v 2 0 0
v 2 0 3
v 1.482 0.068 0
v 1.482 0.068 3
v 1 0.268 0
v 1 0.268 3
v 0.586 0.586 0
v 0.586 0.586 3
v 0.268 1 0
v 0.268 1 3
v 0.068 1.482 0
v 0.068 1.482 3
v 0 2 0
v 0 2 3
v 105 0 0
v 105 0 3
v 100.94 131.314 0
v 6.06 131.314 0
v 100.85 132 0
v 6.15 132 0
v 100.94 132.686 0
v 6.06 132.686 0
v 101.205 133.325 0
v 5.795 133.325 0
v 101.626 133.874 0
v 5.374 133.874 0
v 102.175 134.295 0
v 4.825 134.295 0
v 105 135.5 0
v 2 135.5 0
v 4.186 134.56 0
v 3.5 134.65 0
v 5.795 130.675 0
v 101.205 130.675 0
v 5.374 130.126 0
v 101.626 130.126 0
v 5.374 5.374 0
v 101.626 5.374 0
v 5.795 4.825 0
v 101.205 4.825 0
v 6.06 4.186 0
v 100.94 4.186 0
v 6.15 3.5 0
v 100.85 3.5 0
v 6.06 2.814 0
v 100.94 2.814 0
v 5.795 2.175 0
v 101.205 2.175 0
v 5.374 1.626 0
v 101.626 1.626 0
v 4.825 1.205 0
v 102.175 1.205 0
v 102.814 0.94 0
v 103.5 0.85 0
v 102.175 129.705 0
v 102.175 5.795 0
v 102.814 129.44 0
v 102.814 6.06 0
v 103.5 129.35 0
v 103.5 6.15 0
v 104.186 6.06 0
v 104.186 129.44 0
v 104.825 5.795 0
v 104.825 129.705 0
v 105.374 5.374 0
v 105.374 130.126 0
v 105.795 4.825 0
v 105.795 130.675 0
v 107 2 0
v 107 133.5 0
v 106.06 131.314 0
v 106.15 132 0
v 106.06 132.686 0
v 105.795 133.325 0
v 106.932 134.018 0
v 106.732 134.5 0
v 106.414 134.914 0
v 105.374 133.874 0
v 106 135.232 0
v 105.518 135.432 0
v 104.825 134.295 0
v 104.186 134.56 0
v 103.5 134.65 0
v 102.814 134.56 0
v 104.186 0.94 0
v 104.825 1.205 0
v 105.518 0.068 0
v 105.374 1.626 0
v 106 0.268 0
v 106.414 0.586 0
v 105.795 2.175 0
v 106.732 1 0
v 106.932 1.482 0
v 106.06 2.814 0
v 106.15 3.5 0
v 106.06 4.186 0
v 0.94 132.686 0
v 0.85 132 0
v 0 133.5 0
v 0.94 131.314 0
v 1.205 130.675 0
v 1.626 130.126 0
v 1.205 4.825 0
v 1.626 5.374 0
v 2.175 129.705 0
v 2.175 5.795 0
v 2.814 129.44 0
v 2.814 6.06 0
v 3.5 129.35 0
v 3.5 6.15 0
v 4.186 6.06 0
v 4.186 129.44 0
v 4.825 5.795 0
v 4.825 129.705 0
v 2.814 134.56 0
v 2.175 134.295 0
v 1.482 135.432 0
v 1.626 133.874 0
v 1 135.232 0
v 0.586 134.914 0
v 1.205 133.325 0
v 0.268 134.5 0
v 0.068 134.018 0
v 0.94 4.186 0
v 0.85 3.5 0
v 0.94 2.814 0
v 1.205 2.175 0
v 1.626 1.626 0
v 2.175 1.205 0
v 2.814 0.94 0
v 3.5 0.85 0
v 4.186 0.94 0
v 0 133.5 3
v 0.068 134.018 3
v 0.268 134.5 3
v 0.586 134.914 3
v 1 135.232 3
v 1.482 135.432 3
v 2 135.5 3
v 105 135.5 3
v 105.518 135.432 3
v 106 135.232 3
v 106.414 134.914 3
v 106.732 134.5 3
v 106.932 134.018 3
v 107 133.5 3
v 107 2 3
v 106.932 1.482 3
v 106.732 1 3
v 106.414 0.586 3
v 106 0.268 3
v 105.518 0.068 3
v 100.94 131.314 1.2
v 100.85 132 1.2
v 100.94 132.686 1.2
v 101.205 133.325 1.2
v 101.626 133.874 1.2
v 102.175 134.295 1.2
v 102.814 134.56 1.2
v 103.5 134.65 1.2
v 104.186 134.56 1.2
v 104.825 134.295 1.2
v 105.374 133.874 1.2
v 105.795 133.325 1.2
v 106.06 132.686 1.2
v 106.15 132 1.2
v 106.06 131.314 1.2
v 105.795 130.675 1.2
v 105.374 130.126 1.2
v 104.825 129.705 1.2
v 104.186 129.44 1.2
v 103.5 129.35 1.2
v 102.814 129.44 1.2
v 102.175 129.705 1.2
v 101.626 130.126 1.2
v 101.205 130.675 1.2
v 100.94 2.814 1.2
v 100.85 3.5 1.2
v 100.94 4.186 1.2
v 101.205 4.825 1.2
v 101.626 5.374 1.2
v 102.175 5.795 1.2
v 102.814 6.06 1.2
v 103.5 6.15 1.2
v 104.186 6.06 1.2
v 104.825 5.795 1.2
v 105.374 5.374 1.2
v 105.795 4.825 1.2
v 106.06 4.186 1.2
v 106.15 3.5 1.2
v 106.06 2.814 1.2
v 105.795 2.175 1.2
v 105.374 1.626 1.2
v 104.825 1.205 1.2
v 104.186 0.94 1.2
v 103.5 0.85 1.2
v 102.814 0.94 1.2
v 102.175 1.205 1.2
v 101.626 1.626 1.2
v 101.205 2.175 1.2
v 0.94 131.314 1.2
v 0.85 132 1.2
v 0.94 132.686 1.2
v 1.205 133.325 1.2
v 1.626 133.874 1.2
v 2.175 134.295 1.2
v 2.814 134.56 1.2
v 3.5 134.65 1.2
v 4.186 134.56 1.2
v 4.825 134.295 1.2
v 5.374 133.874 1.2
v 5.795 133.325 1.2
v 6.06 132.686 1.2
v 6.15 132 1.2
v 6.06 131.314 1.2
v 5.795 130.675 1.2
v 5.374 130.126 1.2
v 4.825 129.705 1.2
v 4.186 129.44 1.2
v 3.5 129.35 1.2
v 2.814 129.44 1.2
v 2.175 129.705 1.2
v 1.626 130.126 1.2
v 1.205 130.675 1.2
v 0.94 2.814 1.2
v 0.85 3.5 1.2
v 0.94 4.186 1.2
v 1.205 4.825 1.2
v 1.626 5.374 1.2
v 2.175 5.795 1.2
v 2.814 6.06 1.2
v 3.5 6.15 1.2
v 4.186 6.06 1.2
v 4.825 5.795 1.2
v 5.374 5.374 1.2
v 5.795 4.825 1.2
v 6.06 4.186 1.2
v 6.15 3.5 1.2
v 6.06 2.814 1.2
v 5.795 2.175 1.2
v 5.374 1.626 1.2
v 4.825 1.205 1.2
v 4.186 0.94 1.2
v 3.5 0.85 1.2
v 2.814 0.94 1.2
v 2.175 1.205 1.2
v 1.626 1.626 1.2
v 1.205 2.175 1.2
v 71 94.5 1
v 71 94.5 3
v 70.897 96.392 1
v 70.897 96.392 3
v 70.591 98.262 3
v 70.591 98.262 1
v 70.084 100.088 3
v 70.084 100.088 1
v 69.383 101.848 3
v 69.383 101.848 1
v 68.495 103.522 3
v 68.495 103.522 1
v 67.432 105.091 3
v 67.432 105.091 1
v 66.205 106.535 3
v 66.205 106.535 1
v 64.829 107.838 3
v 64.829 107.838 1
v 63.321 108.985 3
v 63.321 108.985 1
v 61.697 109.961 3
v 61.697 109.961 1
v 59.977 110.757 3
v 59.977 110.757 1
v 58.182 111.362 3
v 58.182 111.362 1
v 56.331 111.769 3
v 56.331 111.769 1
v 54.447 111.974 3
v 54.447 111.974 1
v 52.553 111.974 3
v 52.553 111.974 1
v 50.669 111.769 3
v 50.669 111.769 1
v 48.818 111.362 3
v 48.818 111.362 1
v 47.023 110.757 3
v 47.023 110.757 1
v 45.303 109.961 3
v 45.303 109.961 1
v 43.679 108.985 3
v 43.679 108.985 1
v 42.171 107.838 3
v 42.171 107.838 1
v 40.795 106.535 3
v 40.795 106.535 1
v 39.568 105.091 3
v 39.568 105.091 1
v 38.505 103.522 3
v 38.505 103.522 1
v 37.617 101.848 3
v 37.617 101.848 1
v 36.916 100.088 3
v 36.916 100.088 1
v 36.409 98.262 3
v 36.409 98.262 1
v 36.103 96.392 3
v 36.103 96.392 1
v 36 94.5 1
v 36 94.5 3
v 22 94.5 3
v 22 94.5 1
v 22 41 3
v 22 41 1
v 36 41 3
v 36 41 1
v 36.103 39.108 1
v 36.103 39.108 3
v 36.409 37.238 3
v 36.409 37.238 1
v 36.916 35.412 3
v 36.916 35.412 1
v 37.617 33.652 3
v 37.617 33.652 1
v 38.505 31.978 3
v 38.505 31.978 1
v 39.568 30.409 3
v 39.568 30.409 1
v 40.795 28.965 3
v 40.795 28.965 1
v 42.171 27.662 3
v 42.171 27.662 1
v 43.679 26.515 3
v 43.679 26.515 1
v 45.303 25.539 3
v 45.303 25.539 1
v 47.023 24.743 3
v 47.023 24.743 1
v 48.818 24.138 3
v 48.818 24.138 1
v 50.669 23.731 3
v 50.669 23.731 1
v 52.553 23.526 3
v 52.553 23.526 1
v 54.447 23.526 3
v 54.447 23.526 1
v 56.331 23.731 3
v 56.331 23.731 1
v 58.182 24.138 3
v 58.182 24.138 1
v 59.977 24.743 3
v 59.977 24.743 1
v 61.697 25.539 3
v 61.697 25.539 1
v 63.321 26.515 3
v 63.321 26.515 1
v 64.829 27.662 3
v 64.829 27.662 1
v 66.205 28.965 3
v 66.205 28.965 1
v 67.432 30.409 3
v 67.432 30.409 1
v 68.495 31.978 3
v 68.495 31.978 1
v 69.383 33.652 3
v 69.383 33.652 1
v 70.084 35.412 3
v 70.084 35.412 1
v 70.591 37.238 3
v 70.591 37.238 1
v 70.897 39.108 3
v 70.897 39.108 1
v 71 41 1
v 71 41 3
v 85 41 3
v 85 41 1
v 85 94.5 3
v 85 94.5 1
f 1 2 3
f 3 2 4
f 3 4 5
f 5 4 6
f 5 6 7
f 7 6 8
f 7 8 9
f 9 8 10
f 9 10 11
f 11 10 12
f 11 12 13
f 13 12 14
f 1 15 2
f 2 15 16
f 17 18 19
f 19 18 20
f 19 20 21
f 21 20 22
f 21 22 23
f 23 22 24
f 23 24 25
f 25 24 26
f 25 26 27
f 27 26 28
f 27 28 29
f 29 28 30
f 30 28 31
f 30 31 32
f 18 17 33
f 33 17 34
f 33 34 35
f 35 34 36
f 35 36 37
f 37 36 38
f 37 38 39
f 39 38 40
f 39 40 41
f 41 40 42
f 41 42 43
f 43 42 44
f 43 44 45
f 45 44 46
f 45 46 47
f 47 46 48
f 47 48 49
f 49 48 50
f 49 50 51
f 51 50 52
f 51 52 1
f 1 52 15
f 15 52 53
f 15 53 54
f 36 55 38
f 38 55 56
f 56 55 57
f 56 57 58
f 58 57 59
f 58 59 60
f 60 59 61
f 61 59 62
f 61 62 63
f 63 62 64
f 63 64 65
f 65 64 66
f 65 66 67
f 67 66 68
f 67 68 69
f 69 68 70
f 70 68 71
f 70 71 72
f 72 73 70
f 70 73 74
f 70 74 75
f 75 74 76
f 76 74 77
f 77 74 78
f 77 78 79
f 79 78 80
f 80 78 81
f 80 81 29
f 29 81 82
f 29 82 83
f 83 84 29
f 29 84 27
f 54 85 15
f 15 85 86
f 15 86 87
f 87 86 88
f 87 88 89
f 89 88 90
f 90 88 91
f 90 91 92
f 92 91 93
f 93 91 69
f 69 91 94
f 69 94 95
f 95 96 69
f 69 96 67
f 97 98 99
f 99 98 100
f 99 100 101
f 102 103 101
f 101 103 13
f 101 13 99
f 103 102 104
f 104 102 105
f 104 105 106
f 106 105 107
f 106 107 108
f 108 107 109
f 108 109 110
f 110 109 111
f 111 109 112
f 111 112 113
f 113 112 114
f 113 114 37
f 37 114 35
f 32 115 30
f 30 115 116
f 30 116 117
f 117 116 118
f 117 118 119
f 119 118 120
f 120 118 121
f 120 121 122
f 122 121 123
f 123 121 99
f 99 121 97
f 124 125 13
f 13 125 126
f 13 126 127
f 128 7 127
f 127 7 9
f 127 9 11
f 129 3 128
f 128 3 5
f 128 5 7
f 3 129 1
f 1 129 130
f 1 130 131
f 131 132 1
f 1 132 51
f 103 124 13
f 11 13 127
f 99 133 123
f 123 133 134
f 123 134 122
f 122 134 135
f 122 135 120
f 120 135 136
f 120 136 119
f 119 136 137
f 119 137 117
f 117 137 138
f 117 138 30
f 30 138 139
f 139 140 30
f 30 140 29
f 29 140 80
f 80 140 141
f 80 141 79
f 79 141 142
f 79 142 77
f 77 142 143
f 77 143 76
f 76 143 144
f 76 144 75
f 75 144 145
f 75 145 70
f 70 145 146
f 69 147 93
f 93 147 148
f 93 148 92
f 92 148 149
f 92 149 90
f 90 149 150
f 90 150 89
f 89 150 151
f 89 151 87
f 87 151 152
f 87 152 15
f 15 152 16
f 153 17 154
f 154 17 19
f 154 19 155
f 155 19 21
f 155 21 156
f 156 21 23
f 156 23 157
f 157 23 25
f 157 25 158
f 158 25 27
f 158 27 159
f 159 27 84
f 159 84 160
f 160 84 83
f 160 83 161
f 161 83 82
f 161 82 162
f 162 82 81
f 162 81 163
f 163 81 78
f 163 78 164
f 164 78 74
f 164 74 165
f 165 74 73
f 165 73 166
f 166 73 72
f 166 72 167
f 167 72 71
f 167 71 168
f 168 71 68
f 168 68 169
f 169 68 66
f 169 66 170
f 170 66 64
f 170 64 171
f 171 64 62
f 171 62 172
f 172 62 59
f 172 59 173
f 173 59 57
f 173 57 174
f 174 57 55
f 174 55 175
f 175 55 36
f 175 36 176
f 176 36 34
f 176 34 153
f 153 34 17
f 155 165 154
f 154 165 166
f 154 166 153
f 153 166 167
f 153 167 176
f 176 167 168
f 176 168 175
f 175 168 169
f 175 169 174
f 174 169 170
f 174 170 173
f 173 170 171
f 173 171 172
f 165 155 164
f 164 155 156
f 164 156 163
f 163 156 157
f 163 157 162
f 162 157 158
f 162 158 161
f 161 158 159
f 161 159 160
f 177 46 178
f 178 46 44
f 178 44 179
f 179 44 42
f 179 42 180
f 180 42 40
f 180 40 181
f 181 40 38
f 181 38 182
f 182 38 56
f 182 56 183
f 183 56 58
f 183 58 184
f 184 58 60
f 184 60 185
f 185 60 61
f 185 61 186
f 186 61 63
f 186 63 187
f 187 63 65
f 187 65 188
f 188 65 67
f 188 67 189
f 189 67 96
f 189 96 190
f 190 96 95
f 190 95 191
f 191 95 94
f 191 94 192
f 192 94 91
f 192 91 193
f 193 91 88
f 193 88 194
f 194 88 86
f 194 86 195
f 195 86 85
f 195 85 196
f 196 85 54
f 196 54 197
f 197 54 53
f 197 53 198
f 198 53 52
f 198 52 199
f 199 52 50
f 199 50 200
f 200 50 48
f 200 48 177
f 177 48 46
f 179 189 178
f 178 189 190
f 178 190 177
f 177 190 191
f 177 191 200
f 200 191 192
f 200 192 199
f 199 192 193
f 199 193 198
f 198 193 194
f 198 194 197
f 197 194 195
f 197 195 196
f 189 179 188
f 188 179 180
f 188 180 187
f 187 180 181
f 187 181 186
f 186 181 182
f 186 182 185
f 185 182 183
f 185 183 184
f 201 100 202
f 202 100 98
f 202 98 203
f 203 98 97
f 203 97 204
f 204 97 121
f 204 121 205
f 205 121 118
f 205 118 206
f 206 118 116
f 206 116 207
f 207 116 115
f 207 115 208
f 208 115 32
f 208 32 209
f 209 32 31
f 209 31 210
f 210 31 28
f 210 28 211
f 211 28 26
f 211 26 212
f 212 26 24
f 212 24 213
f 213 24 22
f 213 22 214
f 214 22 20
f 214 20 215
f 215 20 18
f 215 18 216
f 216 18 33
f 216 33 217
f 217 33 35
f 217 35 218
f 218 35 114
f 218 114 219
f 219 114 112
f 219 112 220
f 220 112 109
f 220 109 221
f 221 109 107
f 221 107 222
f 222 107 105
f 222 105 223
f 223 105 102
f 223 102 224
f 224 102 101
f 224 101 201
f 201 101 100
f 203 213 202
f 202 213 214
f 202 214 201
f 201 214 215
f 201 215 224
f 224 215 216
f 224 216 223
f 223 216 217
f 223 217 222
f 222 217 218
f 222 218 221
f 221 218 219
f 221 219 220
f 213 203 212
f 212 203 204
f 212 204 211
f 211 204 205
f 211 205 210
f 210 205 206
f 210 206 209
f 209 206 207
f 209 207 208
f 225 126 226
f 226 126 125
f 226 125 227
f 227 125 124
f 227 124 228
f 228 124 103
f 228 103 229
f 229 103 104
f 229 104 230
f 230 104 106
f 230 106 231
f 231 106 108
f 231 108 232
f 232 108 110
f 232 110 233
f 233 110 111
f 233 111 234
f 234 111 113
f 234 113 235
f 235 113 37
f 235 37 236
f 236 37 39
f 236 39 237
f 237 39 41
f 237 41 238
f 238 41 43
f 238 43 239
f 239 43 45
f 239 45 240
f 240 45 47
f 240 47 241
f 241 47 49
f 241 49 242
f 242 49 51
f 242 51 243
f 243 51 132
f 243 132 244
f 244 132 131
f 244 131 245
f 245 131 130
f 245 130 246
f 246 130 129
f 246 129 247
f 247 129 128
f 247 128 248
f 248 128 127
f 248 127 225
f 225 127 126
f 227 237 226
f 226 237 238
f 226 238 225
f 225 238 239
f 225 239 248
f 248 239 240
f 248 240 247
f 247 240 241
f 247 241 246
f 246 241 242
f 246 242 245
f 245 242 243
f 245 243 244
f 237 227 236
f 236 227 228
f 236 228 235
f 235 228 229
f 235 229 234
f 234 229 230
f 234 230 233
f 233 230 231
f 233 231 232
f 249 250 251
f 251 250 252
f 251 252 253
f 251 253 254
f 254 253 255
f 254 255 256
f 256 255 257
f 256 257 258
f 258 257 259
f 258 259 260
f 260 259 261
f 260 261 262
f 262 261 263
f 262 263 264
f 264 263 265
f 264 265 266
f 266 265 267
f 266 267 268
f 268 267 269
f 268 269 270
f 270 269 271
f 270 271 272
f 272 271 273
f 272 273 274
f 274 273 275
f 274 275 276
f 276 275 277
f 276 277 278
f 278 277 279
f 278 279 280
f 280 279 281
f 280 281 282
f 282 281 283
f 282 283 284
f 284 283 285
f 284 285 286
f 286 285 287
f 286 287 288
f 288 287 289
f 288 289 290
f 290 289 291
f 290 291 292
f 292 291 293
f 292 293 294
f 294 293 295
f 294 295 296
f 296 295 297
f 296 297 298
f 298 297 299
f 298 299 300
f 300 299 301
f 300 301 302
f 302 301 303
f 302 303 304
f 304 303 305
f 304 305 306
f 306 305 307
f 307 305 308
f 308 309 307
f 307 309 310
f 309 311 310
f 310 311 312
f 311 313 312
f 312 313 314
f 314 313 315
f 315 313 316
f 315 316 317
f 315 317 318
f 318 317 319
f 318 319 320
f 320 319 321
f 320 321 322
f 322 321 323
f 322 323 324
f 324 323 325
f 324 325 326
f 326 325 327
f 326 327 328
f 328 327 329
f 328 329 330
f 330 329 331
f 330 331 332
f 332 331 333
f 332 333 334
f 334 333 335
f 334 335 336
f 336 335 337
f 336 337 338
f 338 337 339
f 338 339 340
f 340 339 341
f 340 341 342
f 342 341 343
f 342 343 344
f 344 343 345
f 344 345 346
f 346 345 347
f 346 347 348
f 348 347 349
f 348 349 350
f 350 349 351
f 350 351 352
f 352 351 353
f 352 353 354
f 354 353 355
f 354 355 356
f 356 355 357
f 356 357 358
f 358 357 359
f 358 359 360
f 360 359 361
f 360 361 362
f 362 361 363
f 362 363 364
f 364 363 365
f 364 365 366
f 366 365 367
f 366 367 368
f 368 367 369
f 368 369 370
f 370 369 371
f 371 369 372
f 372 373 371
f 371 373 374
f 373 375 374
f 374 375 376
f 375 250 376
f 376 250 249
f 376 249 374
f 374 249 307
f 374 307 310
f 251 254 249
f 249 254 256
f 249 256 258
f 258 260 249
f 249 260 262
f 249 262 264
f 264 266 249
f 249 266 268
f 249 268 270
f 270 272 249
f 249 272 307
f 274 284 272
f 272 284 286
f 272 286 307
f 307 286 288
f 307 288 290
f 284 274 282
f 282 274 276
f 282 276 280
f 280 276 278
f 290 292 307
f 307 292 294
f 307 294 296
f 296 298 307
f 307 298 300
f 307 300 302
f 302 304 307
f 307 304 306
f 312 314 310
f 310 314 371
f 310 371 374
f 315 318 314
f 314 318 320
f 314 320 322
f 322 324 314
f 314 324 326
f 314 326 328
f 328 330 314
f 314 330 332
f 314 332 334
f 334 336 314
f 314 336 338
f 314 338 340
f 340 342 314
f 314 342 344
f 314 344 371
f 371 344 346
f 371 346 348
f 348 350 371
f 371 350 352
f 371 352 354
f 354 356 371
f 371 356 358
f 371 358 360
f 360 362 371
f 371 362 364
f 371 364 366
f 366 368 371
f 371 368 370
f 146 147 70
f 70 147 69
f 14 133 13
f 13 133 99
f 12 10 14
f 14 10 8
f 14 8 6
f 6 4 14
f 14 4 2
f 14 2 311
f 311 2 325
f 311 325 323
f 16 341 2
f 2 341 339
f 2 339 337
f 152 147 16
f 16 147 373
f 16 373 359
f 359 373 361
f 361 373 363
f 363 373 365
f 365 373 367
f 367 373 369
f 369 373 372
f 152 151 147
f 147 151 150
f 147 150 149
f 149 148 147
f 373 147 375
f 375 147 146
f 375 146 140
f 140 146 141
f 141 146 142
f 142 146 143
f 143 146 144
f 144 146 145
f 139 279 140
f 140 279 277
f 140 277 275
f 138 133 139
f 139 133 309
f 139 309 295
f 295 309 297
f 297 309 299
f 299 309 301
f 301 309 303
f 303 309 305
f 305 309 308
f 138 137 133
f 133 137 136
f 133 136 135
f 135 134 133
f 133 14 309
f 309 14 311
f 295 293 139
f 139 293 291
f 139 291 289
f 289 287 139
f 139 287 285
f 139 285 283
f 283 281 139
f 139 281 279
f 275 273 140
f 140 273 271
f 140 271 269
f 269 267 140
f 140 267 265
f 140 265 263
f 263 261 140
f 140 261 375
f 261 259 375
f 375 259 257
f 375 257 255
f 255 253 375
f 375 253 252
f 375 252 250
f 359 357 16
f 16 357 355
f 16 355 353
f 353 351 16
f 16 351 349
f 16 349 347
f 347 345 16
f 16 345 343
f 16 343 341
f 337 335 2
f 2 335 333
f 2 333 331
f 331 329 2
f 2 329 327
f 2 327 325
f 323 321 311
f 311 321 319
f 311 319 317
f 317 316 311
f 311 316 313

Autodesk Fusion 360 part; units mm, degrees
sketch "Skizze1" plane through (0, 0, 0) normal (0, 0, 1) x (1, 0, 0)
  line L0 (0, 0) -> (107, 0)
  line L1 (107, 0) -> (107, 135.5)
  line L2 (107, 135.5) -> (0, 135.5)
  line L3 (0, 135.5) -> (0, 0)
  dimension "d1" = 107
  dimension "d2" = 135.5
extrude "Extrusion1" add sketch "Skizze1" along normal blind 3
sketch "Skizze2" plane through (0, 0, 3) normal (0, 0, 1) x (-1, 0, 0)
  line L0 (0, -135.5) -> (0, 0)
  line L1 (0, 0) -> (-107, 0)
  line L2 (-107, 0) -> (-107, -135.5)
  line L3 (-107, -135.5) -> (0, -135.5)
  line L4 (-22, -41) -> (-85, -41)
  line L5 (-85, -41) -> (-85, -94.5)
  line L6 (-85, -94.5) -> (-22, -94.5)
  line L7 (-22, -94.5) -> (-22, -41)
  circle A0 centre (-53.5, -41) radius 17.5
  circle A1 centre (-53.5, -94.5) radius 17.5
  dimension "d5" = 63
  dimension "d6" = 53.5
  dimension "d7" = 41
  dimension "d8" = 22
  dimension "d9" = 35
  dimension "d10" = 35
extrude "Extrusion2" cut sketch "Skizze2" against normal blind 2 contours L4 L5 L6 L7 A0 A1 | L4 A0 | L4 A0 | L6 A1 | L6 A1
sketch "Skizze3" plane through (0, 0, 0) normal (0, 0, -1) x (1, 0, 0)
  line L0 (0, 0) -> (0, -135.5)
  line L1 (0, -135.5) -> (107, -135.5)
  line L2 (107, -135.5) -> (107, 0)
  line L3 (107, 0) -> (0, 0)
  line L4 (0, 0) -> (7, 0)
  line L5 (7, 0) -> (7, -7)
  line L6 (7, -7) -> (0, -7)
  line L7 (0, -7) -> (0, 0)
  line L8 (107, 0) -> (100, 0)
  line L9 (100, 0) -> (100, -7)
  line L10 (100, -7) -> (107, -7)
  line L11 (107, -7) -> (107, 0)
  line L12 (0, -135.5) -> (7, -135.5)
  line L13 (7, -135.5) -> (7, -128.5)
  line L14 (7, -128.5) -> (0, -128.5)
  line L15 (0, -128.5) -> (0, -135.5)
  line L16 (107, -135.5) -> (100, -135.5)
  line L17 (100, -135.5) -> (100, -128.5)
  line L18 (100, -128.5) -> (107, -128.5)
  line L19 (107, -128.5) -> (107, -135.5)
  circle A0 centre (3.5, -132) radius 2.65
  circle A1 centre (103.5, -132) radius 2.65
  circle A2 centre (103.5, -3.5) radius 2.65
  circle A3 centre (3.5, -3.5) radius 2.65
  dimension "d13" = 7
  dimension "d14" = 7
  dimension "d15" = 7
  dimension "d16" = 7
  dimension "d17" = 7
  dimension "d18" = 7
  dimension "d19" = 7
  dimension "d20" = 7
  dimension "d21" = 5.3
  dimension "d22" = 5.3
  dimension "d23" = 5.3
  dimension "d24" = 5.3
  dimension "d25" = 3.5
  dimension "d26" = 3.5
  dimension "d27" = 3.5
  dimension "d28" = 3.5
  dimension "d29" = 3.5
  dimension "d30" = 3.5
  dimension "d31" = 3.5
  dimension "d32" = 3.5
extrude "Extrusion3" cut sketch "Skizze3" against normal blind 1.2 contours A0 | A1 | A2 | A3
fillet "Abrundung1" radius 2 4 edges at (107, 0, 1.5) (107, 135.5, 1.5) (0, 135.5, 1.5) (0, 0, 1.5)
equation "d7 = 44 mm - 3 mm"
